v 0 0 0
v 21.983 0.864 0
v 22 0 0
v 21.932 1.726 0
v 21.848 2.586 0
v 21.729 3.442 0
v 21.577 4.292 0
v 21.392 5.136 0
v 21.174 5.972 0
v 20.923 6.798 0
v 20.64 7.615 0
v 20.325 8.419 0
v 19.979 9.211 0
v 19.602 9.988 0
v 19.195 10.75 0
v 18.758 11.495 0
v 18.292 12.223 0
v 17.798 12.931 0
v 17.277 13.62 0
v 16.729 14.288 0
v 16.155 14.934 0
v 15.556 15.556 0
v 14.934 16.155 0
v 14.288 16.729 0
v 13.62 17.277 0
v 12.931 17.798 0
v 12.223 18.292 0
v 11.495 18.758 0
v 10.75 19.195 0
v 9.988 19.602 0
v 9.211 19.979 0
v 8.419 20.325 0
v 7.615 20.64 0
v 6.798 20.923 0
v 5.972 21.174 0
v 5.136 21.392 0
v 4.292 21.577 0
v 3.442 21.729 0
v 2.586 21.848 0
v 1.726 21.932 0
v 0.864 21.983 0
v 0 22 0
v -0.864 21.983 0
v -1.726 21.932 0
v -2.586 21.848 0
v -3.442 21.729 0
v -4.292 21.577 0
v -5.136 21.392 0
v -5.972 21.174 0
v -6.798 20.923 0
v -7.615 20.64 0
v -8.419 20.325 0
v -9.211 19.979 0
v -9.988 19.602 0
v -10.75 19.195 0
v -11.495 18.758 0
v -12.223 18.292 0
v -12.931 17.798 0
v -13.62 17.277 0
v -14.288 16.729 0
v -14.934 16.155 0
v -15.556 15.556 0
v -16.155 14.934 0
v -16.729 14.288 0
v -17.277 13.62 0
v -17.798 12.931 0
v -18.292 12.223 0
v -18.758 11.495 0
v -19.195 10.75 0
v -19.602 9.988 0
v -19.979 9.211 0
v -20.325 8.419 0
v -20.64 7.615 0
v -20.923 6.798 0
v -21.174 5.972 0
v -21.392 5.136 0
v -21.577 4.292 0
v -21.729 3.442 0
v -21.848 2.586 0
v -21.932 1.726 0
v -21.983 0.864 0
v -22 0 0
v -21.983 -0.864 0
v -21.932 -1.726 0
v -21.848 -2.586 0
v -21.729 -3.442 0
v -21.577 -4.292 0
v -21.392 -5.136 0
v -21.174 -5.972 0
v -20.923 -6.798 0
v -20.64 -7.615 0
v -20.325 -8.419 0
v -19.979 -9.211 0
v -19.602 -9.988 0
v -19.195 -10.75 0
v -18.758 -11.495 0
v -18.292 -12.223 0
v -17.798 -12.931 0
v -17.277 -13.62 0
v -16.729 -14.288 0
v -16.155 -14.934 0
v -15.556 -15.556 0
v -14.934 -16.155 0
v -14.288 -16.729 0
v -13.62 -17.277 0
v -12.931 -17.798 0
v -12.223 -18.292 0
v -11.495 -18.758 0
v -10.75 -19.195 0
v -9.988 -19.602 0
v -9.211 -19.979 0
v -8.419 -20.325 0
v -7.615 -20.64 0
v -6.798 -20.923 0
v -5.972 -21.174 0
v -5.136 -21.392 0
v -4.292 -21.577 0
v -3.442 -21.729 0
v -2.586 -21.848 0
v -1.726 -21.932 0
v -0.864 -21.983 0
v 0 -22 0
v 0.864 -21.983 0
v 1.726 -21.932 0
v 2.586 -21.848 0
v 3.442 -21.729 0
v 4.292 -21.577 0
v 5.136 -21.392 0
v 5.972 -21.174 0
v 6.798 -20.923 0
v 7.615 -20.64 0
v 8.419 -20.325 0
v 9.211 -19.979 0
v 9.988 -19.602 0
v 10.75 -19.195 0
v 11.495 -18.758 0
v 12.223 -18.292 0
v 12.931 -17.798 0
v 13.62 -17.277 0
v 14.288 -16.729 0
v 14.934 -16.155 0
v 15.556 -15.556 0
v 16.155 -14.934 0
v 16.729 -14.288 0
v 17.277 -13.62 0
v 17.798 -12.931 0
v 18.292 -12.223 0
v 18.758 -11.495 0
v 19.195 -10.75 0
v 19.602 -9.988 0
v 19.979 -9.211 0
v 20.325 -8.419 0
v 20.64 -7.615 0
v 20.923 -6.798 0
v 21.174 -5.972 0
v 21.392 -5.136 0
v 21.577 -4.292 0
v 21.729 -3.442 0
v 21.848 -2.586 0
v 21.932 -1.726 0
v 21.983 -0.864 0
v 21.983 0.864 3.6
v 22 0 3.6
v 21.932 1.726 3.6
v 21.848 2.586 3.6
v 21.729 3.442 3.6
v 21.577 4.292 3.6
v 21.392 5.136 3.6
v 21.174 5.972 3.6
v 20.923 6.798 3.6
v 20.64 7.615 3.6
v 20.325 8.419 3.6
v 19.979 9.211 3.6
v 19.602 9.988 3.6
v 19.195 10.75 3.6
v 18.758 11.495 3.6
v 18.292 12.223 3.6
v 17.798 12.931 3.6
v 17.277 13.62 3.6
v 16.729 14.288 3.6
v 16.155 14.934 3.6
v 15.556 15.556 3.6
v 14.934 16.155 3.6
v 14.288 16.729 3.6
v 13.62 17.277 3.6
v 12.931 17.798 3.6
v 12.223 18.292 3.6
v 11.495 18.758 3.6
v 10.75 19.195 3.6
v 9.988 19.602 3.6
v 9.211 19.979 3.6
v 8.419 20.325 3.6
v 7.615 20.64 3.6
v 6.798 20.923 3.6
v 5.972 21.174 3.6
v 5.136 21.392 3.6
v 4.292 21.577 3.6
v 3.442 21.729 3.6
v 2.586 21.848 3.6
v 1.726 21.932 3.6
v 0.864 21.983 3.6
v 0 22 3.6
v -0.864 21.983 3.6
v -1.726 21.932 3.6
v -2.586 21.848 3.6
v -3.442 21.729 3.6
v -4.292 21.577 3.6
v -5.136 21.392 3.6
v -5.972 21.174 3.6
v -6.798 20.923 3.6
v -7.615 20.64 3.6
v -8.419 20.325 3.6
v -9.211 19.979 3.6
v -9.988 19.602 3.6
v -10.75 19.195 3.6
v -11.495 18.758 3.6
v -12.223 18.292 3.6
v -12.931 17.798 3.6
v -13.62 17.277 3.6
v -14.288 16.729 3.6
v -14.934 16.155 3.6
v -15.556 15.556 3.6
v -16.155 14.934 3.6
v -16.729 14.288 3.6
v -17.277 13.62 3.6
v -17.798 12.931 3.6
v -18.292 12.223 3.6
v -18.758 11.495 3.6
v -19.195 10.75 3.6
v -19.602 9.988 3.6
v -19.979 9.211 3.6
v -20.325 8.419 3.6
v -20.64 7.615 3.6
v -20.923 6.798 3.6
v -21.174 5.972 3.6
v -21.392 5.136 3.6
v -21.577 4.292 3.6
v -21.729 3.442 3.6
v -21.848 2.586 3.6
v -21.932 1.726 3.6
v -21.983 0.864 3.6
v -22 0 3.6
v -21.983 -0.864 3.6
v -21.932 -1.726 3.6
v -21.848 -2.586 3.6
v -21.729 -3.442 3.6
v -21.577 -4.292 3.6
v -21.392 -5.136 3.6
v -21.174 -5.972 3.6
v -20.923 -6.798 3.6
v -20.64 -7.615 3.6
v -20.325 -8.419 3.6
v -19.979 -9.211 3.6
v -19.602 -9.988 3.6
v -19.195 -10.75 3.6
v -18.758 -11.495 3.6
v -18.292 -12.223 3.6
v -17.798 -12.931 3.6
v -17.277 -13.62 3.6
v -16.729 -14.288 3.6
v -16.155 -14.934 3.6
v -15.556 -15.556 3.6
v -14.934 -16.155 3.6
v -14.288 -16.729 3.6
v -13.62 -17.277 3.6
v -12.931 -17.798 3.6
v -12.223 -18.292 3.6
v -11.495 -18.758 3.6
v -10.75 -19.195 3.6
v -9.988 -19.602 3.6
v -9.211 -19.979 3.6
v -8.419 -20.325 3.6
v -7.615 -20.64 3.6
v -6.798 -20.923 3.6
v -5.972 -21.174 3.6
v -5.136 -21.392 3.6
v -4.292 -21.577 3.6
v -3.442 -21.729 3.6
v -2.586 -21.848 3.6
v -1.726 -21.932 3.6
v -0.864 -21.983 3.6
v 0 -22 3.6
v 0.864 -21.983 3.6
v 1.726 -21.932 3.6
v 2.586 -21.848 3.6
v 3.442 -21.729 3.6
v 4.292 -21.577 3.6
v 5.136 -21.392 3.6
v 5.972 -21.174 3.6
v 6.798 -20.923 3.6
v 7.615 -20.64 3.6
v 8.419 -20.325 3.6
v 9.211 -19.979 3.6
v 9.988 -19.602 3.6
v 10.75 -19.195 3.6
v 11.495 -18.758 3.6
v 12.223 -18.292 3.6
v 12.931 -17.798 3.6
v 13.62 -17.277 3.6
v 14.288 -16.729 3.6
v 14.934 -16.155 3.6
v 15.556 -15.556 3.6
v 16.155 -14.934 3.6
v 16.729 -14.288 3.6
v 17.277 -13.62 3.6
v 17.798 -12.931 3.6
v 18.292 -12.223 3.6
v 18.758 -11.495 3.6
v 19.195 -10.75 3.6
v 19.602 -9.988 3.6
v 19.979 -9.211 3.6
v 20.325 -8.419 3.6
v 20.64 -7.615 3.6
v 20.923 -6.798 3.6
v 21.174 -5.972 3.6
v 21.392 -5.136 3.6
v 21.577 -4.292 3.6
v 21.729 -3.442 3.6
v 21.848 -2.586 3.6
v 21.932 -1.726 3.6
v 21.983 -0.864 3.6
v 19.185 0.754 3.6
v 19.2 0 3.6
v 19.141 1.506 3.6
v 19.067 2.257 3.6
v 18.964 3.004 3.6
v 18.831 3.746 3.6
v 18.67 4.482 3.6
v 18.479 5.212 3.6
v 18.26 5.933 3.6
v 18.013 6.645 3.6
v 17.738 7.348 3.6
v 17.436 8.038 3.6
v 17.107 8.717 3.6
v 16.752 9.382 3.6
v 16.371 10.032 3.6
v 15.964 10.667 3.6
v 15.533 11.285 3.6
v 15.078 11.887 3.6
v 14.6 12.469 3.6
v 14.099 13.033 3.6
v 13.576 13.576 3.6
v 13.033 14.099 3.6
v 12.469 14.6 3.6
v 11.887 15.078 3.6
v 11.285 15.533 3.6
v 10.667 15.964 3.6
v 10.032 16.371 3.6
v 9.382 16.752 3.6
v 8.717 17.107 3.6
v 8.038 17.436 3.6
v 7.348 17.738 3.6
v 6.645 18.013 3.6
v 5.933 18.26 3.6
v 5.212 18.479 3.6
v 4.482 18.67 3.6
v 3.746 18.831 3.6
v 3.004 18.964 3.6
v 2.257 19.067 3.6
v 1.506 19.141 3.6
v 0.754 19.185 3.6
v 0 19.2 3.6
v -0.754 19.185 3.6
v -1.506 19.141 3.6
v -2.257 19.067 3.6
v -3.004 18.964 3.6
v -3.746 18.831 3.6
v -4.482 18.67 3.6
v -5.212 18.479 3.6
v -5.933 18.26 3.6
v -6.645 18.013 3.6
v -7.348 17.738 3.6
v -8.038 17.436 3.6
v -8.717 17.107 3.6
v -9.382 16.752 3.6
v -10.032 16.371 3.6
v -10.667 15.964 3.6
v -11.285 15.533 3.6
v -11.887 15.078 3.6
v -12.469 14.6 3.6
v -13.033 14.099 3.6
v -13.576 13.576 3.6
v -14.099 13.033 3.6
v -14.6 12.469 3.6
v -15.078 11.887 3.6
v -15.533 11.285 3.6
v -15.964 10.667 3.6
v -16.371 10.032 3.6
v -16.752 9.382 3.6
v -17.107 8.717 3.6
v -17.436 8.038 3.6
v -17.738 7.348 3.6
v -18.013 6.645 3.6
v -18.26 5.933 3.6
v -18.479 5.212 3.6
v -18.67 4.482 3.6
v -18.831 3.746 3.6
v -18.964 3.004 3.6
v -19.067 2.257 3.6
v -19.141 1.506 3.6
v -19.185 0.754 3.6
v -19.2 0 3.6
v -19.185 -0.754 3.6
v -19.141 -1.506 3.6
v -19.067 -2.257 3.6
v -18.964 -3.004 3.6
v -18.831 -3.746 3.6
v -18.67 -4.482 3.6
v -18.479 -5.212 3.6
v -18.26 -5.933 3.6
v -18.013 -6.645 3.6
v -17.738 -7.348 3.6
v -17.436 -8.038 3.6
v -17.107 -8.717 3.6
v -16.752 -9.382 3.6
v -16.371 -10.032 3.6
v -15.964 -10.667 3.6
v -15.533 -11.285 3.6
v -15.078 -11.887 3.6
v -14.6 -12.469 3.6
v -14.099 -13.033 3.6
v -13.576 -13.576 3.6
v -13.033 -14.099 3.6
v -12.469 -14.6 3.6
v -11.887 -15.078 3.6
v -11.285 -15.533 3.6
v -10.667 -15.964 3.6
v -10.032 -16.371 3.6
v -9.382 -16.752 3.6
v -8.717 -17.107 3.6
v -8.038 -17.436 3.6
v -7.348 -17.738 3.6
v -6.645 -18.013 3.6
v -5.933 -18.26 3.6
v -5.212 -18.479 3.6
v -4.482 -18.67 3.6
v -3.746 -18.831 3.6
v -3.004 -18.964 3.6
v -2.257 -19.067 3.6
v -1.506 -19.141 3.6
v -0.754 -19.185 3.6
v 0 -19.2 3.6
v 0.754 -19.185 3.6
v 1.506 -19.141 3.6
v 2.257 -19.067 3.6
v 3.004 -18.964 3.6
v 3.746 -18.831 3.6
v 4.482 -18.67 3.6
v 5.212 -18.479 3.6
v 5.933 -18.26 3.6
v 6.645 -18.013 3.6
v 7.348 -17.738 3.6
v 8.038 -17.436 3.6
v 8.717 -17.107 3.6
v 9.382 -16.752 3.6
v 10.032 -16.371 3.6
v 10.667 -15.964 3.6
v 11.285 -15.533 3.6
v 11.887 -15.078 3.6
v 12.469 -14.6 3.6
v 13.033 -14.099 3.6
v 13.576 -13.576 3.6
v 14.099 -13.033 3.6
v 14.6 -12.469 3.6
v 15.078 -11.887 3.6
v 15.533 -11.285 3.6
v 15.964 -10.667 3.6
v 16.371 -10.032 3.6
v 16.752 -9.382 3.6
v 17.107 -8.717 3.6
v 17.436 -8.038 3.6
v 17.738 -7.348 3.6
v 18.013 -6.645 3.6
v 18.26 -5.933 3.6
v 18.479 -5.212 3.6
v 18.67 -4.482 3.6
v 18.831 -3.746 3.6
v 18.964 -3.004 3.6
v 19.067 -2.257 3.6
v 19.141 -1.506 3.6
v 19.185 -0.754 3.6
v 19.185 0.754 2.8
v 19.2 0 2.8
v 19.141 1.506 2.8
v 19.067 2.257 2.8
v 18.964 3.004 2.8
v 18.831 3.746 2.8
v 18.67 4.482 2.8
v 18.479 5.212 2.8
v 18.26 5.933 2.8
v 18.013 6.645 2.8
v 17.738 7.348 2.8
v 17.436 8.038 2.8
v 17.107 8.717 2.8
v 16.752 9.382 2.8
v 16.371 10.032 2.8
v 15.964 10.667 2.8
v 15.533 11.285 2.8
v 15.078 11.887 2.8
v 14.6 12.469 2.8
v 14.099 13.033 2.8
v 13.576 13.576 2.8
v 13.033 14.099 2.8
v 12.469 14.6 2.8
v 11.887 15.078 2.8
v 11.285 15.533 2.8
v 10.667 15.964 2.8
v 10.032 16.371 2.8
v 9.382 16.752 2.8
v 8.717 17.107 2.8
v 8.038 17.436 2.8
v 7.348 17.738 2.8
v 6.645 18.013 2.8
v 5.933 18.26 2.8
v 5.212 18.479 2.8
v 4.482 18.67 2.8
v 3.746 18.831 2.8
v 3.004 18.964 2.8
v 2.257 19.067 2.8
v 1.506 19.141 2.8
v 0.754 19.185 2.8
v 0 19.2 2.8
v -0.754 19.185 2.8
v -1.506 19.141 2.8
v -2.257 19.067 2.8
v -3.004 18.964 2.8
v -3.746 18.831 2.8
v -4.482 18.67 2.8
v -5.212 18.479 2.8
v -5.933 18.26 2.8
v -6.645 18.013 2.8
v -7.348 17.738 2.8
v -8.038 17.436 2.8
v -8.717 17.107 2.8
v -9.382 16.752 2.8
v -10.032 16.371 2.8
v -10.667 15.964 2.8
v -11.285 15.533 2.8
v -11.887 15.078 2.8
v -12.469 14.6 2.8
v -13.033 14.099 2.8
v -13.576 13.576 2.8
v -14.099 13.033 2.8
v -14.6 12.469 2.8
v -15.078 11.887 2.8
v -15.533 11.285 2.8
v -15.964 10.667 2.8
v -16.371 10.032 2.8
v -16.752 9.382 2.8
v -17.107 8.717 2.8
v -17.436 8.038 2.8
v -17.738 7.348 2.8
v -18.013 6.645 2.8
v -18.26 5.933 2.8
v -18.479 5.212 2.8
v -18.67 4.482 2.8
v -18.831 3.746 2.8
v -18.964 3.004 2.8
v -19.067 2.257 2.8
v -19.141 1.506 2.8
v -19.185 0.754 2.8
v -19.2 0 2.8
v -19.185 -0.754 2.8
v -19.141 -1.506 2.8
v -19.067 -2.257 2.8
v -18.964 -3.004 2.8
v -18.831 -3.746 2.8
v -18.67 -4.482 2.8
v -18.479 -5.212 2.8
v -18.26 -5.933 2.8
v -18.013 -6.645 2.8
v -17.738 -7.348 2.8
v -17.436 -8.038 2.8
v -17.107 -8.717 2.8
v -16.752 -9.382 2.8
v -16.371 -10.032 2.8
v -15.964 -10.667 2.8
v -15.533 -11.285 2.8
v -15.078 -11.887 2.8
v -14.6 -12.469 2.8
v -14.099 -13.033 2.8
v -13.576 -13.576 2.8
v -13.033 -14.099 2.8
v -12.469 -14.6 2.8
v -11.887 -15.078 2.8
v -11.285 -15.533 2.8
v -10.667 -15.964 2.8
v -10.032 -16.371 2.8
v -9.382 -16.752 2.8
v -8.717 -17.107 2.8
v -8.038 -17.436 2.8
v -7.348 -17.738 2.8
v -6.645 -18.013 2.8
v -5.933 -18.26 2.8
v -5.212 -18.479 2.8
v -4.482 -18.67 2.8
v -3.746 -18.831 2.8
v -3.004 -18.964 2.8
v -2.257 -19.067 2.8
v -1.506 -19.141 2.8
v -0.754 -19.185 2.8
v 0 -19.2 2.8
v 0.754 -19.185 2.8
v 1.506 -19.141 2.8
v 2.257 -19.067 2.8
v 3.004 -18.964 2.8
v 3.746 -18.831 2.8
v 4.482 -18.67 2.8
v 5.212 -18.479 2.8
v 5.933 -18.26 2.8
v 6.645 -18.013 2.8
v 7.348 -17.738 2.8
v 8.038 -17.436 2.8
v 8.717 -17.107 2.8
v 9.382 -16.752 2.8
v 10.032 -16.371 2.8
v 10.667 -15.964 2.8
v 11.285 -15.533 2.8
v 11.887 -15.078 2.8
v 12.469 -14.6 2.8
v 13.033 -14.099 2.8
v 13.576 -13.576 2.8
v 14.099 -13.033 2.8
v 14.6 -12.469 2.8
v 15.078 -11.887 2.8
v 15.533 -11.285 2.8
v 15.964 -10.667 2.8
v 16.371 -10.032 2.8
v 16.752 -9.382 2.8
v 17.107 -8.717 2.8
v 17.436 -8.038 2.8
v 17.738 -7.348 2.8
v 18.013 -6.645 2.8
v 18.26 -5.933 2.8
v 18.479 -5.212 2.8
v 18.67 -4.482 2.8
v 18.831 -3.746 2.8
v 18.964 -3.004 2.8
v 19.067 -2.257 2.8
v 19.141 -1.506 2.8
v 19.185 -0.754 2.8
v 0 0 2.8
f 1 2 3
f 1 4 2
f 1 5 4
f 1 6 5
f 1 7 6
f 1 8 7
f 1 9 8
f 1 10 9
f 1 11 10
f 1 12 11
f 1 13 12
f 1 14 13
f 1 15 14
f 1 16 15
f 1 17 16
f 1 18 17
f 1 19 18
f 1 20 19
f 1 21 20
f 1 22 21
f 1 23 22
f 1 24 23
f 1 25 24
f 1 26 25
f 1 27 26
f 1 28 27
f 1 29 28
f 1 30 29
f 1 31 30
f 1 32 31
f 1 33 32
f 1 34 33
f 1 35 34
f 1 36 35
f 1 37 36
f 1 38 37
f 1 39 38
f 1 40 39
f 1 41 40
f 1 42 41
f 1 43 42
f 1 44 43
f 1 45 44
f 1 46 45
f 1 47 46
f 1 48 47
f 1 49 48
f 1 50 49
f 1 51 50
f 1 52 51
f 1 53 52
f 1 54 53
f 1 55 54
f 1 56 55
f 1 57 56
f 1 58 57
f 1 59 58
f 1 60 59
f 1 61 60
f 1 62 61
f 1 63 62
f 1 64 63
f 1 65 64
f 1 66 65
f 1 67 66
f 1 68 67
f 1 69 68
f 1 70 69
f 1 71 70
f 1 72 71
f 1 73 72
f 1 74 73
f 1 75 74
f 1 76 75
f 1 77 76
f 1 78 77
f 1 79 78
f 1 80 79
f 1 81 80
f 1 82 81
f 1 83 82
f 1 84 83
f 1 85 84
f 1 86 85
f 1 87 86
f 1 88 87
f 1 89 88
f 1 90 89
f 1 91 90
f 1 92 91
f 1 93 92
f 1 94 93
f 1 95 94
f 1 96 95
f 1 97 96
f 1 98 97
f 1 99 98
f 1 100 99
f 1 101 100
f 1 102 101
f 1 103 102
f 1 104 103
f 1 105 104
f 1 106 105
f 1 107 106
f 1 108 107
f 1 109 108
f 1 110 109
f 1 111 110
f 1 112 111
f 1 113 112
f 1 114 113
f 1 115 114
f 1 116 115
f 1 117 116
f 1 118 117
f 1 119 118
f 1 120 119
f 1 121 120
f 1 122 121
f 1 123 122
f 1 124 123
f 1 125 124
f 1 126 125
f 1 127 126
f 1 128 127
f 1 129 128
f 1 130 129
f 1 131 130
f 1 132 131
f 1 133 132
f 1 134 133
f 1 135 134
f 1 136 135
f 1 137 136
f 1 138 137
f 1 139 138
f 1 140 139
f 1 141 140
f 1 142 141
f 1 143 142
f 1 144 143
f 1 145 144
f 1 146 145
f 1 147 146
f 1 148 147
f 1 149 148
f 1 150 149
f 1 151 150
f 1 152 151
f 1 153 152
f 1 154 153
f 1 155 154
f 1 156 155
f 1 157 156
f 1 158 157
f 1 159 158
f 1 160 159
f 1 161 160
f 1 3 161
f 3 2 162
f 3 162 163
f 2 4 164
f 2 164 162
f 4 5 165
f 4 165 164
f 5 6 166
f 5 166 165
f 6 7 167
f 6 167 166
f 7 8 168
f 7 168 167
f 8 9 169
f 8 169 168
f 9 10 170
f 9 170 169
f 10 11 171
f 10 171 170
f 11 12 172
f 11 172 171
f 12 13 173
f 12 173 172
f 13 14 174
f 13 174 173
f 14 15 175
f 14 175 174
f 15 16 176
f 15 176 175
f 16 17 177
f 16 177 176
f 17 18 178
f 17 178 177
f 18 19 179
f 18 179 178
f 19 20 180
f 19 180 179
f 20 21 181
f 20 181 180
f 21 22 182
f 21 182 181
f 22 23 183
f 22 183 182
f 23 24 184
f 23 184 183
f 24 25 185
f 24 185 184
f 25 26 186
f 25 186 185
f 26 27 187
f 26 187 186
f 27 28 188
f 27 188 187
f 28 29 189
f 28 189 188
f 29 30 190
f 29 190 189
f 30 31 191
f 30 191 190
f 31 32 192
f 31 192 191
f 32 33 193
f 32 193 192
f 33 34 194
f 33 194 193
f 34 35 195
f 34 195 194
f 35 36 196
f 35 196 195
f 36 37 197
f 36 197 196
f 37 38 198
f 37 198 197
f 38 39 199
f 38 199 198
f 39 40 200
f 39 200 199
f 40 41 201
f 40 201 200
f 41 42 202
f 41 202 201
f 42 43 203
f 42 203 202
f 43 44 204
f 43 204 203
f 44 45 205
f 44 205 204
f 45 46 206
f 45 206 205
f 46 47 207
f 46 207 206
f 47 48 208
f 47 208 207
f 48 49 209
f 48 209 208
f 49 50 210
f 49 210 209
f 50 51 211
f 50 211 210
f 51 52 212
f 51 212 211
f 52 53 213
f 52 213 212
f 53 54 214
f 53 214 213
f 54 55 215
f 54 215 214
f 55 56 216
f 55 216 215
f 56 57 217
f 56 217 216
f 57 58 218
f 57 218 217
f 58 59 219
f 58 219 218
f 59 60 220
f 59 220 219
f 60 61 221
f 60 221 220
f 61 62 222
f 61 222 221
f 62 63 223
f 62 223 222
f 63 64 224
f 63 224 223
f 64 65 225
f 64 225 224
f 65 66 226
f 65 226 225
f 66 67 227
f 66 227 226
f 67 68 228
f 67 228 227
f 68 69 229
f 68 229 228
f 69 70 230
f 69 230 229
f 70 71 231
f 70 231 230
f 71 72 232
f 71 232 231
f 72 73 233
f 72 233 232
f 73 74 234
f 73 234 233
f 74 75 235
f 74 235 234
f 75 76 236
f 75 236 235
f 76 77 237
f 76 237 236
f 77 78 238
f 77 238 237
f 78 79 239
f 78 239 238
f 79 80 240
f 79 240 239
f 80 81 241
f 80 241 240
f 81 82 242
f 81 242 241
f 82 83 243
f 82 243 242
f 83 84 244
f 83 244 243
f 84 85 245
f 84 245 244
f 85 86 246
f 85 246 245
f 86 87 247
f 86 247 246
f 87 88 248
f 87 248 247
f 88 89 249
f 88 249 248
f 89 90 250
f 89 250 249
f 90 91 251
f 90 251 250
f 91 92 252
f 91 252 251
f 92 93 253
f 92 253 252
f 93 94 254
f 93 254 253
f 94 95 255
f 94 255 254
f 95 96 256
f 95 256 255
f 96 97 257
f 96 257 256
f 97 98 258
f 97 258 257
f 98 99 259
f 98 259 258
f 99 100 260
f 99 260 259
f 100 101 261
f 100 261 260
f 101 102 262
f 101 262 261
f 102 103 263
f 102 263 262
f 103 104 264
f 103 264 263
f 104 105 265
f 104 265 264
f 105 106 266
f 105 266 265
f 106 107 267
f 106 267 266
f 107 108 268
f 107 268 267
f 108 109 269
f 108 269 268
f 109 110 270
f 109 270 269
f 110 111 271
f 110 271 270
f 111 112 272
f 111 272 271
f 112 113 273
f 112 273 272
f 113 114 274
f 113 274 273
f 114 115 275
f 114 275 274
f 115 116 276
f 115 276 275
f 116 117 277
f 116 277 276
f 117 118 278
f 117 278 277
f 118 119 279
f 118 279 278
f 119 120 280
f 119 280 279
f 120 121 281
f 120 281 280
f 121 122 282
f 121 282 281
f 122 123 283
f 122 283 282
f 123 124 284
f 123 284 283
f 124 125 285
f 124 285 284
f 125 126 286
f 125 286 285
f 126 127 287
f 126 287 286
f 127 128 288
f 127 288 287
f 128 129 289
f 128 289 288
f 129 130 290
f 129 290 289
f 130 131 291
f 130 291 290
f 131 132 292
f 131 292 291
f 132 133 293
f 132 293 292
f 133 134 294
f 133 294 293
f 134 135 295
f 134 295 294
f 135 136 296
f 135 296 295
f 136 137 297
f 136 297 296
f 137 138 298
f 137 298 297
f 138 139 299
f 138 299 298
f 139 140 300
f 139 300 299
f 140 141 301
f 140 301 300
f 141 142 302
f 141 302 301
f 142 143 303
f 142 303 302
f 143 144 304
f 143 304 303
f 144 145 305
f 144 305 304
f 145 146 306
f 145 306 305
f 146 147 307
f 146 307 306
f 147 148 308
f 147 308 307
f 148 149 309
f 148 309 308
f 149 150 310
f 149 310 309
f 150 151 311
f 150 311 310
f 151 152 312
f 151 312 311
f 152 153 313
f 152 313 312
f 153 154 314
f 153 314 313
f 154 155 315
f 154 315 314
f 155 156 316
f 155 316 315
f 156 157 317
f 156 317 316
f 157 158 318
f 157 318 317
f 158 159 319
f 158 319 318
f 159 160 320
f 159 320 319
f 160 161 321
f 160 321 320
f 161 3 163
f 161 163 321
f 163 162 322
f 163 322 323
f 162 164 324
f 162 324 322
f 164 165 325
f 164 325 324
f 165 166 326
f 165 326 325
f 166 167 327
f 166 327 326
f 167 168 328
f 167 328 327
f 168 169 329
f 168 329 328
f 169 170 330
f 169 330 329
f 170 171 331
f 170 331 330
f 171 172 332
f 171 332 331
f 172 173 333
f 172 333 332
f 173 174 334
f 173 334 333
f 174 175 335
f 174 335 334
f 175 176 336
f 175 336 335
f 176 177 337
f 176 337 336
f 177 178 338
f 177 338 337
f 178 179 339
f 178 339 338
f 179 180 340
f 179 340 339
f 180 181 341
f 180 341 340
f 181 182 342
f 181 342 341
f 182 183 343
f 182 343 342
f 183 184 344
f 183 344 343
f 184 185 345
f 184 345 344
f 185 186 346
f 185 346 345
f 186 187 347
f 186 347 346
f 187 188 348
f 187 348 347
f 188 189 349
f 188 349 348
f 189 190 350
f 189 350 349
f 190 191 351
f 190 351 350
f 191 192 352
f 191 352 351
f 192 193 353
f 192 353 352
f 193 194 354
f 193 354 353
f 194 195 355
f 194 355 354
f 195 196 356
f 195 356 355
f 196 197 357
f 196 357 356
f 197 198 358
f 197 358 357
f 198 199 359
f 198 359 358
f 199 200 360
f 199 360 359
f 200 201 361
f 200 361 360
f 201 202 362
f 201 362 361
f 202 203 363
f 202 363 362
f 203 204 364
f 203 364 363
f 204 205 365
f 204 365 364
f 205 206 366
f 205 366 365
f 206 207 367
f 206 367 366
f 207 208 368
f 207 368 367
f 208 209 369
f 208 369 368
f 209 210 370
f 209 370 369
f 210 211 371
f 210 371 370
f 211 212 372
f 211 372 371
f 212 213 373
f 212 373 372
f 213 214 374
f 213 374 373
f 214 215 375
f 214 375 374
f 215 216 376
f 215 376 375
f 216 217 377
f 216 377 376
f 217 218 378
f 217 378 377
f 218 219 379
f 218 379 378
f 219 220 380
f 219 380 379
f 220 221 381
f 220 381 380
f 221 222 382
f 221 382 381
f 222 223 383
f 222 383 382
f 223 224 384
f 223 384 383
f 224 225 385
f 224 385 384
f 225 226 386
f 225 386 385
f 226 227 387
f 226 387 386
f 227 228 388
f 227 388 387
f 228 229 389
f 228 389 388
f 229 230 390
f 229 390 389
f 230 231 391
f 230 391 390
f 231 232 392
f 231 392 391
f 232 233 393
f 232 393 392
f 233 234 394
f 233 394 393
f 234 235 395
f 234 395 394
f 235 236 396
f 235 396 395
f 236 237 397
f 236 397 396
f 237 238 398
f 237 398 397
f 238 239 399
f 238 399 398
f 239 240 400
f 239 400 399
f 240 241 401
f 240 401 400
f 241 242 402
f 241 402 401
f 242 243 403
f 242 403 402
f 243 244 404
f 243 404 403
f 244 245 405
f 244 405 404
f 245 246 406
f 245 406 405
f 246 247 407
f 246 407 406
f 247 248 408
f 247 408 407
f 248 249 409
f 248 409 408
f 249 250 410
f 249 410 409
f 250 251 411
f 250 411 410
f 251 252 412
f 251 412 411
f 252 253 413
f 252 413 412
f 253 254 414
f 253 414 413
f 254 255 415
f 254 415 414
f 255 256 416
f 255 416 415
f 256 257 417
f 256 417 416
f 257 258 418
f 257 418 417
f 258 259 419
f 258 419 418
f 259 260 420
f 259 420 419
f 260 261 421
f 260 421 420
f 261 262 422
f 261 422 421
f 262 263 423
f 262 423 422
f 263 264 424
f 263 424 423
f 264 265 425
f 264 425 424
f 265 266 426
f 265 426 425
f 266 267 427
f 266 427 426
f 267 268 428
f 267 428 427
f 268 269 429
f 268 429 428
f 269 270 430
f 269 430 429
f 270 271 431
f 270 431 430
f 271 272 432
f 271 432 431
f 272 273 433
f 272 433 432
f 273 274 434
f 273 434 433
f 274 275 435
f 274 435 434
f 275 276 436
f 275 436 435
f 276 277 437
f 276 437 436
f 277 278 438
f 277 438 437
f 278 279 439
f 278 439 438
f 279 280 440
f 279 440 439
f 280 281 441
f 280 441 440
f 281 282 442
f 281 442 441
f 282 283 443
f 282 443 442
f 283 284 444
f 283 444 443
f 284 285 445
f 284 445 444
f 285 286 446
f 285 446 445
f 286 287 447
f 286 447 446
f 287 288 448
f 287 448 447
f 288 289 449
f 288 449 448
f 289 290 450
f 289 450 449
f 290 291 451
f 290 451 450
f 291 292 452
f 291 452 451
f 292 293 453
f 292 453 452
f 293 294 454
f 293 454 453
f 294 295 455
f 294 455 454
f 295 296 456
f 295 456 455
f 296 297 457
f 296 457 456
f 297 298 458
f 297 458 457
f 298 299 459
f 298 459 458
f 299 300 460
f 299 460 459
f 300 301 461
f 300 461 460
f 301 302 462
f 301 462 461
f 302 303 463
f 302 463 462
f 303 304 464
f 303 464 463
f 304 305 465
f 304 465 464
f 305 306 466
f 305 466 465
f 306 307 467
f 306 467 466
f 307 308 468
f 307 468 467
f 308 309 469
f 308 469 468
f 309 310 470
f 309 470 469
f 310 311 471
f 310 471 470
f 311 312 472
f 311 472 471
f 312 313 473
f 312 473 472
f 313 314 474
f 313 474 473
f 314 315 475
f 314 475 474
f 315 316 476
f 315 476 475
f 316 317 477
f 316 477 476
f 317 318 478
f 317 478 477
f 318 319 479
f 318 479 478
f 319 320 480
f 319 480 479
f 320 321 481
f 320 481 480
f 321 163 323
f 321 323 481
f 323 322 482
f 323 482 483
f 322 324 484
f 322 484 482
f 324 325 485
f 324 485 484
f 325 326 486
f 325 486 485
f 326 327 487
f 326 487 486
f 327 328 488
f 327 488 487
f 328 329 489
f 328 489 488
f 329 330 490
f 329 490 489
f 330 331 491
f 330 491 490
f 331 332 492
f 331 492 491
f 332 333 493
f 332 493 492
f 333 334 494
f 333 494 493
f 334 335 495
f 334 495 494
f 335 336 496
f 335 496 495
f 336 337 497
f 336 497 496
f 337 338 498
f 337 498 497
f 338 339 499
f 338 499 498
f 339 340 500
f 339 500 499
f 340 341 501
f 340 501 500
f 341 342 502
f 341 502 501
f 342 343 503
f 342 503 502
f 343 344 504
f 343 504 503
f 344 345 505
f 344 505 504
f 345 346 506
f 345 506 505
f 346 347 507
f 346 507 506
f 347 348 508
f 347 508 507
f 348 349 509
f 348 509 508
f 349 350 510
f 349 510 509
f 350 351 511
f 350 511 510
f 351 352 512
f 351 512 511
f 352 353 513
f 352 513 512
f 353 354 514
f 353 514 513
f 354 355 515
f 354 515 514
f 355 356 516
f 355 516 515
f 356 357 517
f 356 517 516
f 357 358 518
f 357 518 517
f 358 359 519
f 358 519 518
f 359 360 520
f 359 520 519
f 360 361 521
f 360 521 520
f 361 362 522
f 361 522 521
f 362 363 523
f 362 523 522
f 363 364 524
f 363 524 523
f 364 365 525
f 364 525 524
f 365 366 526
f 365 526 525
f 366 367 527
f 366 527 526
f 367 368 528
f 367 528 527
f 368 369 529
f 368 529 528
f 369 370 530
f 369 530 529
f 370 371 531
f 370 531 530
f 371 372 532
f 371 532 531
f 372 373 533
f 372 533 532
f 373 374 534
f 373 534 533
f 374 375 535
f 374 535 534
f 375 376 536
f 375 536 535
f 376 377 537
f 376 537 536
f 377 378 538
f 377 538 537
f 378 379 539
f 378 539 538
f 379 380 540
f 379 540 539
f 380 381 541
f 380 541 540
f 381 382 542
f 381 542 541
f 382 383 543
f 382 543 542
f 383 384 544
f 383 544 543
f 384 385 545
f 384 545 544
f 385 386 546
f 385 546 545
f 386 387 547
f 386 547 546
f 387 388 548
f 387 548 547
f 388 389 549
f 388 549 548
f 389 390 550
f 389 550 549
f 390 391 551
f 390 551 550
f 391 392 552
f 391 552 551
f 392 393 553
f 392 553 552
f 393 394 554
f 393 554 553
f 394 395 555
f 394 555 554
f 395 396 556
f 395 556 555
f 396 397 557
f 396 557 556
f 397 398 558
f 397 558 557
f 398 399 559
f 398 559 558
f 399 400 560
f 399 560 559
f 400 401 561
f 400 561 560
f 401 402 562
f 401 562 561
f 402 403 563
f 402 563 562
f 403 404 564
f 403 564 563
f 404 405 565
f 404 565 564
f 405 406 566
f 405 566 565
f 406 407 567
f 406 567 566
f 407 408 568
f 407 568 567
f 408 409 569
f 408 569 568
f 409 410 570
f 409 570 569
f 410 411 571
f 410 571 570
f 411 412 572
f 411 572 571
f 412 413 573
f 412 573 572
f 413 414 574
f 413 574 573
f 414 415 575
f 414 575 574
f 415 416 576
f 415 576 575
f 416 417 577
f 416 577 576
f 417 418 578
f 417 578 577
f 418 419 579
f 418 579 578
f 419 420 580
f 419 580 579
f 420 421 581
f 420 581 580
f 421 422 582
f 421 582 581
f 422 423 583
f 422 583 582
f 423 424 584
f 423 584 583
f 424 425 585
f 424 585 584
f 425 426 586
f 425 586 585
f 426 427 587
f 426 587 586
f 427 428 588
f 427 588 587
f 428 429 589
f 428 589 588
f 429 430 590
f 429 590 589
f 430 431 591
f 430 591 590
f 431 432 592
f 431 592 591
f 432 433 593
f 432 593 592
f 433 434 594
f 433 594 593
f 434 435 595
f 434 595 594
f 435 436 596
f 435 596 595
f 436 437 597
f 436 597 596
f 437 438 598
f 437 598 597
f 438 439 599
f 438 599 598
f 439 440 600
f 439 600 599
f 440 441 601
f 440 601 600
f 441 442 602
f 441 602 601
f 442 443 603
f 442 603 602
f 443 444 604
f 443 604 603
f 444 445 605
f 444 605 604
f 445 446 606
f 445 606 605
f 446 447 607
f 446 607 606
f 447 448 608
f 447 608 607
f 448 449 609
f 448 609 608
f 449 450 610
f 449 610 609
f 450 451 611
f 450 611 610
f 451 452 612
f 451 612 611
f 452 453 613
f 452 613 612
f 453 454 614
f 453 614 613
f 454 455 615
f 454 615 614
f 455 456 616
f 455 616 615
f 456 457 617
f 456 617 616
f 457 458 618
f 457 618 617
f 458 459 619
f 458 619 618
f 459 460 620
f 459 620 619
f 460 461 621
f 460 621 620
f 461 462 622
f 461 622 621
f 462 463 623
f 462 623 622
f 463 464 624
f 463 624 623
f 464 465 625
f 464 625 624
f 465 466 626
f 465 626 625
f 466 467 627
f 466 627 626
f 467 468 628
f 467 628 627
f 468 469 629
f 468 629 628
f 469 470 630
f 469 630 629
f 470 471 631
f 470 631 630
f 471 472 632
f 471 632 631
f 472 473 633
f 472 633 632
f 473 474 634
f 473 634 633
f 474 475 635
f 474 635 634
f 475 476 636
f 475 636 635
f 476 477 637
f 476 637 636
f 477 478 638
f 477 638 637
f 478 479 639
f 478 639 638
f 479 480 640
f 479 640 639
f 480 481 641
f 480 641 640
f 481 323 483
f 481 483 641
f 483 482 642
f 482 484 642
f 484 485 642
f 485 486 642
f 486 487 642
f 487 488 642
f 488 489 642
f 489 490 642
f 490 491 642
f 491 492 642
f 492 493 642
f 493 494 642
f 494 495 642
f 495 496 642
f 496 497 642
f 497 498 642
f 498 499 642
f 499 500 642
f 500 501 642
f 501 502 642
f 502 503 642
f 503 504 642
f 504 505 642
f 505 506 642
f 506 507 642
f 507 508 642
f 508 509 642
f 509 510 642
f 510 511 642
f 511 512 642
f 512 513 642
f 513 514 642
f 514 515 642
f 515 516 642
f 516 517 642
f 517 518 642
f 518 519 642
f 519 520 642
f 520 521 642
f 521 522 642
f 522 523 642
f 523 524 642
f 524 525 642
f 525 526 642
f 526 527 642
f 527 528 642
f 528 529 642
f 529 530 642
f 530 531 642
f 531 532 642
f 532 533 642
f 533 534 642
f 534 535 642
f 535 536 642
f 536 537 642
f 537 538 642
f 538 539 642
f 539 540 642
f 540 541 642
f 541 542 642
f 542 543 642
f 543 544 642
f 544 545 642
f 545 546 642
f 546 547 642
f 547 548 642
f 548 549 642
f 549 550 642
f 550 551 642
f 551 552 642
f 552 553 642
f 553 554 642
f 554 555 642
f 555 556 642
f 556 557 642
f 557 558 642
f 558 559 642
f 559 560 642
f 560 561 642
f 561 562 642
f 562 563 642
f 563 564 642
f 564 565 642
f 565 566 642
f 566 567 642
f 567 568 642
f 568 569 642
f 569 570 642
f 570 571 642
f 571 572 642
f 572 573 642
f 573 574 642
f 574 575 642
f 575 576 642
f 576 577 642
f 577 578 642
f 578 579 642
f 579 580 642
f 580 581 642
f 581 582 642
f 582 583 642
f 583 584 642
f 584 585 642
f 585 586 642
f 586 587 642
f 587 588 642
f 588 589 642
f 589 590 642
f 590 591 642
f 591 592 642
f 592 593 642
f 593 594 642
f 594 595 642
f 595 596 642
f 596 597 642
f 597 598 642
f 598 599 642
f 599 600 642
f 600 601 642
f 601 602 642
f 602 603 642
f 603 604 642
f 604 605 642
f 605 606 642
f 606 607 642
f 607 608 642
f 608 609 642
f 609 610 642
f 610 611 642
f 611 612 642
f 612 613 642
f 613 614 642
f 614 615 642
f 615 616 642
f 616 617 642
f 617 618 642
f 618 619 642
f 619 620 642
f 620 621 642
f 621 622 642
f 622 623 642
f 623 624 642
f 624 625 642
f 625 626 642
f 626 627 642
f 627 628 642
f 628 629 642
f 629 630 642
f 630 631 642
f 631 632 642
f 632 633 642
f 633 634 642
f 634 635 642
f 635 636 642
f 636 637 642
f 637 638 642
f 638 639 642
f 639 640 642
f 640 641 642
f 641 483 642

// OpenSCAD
// Cursed Coin blank. Print flat, recess up, no supports.
// The 38 mm sticker sits in the recess; an NFC sticker can go underneath it.
coin_d = 44;
thickness = 3.6;
recess_d = 38.4;
recess_depth = 0.8;
$fn = 160;

difference() {
  cylinder(d = coin_d, h = thickness);
  translate([0, 0, thickness - recess_depth]) cylinder(d = recess_d, h = recess_depth + 1);
}
